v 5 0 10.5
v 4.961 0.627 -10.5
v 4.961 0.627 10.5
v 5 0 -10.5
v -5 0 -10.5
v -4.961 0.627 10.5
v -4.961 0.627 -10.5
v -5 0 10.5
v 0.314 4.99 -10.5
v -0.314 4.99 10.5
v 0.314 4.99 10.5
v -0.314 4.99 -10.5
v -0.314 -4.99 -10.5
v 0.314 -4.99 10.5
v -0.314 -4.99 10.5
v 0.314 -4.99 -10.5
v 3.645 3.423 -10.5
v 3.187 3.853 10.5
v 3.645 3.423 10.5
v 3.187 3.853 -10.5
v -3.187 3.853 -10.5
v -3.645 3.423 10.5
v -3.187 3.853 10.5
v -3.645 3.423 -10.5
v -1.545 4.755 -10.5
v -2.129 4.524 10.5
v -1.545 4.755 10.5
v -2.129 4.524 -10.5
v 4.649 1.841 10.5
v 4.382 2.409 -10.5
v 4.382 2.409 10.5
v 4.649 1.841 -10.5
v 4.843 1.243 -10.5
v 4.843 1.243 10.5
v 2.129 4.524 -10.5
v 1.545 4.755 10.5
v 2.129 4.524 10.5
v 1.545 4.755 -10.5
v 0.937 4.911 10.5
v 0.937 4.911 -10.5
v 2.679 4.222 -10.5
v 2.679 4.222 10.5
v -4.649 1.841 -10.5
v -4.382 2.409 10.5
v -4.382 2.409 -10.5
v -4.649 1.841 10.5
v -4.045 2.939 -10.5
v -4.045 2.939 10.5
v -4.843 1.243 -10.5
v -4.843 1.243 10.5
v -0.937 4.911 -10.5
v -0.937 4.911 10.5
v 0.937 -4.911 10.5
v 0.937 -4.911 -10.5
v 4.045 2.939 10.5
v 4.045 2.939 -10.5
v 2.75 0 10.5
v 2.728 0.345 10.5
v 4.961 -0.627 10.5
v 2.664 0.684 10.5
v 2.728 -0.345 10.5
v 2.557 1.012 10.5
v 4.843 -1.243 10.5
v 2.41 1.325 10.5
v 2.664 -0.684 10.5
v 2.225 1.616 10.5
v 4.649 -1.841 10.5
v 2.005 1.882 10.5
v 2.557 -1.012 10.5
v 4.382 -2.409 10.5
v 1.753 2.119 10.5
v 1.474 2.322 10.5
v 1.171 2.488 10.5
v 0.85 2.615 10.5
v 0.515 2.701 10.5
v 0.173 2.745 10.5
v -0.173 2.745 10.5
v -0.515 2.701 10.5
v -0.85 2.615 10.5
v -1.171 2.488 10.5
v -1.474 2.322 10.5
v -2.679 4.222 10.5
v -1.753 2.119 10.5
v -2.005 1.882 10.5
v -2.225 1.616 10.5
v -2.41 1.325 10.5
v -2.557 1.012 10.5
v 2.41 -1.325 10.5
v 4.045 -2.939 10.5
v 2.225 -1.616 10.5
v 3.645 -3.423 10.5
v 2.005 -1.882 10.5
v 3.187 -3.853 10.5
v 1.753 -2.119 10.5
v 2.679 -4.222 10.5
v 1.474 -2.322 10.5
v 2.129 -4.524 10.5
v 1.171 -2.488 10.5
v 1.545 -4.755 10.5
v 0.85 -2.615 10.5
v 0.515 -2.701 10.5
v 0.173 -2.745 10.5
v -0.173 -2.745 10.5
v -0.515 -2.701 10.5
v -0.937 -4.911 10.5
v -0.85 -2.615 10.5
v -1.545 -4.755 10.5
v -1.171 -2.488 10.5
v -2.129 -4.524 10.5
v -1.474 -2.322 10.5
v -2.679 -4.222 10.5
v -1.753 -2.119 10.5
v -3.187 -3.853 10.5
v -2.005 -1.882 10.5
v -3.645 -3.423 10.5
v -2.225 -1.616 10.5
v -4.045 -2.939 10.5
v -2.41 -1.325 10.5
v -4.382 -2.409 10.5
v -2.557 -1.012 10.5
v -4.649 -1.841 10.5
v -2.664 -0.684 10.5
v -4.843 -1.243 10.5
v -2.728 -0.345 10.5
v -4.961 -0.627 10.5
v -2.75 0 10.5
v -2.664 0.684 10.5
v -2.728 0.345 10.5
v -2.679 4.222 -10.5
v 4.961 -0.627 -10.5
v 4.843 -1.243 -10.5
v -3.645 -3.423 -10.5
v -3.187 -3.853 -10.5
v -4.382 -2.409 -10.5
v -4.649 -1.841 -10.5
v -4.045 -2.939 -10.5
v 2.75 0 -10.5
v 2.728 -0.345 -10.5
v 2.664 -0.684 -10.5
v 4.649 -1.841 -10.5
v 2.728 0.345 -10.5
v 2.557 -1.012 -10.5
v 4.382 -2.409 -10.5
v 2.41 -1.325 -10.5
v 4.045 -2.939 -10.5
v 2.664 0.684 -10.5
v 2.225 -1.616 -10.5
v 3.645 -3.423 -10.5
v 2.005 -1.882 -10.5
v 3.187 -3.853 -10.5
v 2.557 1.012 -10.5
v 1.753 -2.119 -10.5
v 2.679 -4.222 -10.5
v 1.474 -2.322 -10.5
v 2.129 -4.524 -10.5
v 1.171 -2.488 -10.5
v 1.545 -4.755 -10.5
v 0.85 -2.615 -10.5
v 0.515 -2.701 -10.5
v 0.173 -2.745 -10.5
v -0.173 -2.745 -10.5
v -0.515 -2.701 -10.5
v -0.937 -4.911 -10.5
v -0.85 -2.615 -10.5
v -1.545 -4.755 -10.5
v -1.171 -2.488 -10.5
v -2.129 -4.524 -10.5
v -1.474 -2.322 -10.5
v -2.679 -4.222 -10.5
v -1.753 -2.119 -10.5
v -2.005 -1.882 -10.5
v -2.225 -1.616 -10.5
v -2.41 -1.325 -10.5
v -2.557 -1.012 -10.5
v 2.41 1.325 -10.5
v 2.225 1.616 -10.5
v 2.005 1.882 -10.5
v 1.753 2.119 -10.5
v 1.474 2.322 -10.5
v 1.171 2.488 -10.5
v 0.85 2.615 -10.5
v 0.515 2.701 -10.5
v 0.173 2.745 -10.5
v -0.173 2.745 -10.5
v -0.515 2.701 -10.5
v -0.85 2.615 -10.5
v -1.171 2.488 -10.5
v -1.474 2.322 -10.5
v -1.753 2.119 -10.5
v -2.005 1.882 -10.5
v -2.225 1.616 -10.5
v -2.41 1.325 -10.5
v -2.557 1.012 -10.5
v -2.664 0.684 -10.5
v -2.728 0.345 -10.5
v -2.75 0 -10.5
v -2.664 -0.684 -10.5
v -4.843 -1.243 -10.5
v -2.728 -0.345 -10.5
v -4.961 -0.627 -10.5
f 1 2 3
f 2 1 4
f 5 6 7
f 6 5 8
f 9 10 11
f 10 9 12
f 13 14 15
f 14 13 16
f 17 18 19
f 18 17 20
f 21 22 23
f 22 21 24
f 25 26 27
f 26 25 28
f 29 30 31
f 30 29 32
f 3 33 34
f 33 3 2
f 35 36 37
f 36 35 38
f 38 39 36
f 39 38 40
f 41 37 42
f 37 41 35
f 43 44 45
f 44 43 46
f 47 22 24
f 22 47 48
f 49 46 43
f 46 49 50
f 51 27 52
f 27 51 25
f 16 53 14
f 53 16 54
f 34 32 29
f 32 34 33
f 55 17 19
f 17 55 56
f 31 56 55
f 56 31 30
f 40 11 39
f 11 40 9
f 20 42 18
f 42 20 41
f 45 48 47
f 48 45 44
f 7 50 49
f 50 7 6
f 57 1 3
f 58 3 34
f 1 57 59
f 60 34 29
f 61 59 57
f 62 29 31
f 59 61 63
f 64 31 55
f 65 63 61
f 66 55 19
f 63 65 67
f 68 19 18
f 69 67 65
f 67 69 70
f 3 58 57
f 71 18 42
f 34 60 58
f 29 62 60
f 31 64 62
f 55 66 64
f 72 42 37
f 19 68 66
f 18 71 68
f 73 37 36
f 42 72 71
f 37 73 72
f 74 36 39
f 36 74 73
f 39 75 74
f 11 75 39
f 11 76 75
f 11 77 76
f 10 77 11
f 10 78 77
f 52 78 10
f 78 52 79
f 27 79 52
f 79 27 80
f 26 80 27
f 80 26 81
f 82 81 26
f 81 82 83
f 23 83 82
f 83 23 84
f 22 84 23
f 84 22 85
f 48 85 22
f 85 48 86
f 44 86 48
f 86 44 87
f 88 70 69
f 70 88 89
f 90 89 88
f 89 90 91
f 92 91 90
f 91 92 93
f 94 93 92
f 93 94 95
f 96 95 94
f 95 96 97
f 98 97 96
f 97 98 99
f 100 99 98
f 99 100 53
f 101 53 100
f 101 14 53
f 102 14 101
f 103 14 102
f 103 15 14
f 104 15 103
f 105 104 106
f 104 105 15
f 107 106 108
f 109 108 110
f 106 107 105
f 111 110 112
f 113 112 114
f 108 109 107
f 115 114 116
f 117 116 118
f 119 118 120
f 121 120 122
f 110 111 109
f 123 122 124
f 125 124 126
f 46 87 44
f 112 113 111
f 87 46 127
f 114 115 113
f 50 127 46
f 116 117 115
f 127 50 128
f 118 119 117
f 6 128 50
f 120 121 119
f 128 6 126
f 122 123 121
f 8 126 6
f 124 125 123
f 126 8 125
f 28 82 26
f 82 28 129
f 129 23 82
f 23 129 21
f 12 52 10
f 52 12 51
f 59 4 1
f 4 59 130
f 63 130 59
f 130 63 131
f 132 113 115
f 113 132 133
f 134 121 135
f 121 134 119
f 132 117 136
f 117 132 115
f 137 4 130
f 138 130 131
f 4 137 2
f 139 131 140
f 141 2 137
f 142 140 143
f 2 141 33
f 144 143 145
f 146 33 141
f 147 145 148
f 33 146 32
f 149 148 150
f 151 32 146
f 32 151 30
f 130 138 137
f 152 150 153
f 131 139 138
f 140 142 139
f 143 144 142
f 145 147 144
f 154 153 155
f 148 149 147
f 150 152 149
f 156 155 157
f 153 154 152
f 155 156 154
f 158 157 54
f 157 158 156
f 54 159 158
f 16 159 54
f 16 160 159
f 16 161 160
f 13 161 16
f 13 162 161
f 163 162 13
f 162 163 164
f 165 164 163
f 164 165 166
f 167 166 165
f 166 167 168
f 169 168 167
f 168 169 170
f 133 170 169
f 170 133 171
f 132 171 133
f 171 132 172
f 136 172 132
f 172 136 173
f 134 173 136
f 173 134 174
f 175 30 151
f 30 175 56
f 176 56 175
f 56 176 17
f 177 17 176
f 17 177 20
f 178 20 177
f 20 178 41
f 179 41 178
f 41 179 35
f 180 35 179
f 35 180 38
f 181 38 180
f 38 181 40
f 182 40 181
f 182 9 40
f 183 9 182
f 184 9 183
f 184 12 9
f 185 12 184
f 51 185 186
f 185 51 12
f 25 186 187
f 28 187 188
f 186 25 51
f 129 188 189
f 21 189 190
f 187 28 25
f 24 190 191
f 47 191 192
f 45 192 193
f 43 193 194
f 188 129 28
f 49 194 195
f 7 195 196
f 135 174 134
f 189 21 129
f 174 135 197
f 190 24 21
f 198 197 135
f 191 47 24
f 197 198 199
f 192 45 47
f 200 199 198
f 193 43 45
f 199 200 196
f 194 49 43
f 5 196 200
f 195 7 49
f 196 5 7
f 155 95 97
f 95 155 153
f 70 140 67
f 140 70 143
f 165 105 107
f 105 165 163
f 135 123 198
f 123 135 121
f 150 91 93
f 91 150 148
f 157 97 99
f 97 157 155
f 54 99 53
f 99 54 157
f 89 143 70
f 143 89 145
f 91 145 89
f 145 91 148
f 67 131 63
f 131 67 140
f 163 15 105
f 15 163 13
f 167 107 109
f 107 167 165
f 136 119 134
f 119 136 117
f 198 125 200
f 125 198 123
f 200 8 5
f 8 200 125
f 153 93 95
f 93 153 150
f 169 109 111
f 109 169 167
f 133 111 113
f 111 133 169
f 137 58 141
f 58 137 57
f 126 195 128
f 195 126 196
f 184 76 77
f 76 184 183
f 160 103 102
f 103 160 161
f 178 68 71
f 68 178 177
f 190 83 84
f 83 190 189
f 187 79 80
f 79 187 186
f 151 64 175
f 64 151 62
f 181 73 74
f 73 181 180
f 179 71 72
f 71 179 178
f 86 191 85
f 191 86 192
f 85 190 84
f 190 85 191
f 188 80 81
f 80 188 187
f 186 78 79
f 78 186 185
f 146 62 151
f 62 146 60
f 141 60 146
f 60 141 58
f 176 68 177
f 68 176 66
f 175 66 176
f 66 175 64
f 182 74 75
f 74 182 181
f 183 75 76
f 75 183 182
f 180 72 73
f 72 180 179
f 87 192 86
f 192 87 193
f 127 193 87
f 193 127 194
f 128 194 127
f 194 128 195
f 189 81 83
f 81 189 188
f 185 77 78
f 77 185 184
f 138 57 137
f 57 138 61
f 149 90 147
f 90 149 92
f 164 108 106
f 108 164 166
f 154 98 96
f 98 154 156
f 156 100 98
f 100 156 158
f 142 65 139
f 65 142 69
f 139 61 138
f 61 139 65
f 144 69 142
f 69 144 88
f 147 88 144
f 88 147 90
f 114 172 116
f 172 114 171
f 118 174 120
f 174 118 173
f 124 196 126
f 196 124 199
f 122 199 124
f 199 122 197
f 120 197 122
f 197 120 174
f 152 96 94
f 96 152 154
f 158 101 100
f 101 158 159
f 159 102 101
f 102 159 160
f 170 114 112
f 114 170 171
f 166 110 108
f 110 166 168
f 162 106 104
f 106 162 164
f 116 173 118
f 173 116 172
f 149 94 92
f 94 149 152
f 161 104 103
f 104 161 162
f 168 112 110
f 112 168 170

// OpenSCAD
$fn = 50;


difference() {
	union() {
		translate(v = [0, 0, -10.5000000000]) {
			cylinder(h = 21, r = 5.0000000000);
		}
	}
	union() {
		translate(v = [0, 0, -100.0000000000]) {
			cylinder(h = 200, r = 2.7500000000);
		}
	}
}
